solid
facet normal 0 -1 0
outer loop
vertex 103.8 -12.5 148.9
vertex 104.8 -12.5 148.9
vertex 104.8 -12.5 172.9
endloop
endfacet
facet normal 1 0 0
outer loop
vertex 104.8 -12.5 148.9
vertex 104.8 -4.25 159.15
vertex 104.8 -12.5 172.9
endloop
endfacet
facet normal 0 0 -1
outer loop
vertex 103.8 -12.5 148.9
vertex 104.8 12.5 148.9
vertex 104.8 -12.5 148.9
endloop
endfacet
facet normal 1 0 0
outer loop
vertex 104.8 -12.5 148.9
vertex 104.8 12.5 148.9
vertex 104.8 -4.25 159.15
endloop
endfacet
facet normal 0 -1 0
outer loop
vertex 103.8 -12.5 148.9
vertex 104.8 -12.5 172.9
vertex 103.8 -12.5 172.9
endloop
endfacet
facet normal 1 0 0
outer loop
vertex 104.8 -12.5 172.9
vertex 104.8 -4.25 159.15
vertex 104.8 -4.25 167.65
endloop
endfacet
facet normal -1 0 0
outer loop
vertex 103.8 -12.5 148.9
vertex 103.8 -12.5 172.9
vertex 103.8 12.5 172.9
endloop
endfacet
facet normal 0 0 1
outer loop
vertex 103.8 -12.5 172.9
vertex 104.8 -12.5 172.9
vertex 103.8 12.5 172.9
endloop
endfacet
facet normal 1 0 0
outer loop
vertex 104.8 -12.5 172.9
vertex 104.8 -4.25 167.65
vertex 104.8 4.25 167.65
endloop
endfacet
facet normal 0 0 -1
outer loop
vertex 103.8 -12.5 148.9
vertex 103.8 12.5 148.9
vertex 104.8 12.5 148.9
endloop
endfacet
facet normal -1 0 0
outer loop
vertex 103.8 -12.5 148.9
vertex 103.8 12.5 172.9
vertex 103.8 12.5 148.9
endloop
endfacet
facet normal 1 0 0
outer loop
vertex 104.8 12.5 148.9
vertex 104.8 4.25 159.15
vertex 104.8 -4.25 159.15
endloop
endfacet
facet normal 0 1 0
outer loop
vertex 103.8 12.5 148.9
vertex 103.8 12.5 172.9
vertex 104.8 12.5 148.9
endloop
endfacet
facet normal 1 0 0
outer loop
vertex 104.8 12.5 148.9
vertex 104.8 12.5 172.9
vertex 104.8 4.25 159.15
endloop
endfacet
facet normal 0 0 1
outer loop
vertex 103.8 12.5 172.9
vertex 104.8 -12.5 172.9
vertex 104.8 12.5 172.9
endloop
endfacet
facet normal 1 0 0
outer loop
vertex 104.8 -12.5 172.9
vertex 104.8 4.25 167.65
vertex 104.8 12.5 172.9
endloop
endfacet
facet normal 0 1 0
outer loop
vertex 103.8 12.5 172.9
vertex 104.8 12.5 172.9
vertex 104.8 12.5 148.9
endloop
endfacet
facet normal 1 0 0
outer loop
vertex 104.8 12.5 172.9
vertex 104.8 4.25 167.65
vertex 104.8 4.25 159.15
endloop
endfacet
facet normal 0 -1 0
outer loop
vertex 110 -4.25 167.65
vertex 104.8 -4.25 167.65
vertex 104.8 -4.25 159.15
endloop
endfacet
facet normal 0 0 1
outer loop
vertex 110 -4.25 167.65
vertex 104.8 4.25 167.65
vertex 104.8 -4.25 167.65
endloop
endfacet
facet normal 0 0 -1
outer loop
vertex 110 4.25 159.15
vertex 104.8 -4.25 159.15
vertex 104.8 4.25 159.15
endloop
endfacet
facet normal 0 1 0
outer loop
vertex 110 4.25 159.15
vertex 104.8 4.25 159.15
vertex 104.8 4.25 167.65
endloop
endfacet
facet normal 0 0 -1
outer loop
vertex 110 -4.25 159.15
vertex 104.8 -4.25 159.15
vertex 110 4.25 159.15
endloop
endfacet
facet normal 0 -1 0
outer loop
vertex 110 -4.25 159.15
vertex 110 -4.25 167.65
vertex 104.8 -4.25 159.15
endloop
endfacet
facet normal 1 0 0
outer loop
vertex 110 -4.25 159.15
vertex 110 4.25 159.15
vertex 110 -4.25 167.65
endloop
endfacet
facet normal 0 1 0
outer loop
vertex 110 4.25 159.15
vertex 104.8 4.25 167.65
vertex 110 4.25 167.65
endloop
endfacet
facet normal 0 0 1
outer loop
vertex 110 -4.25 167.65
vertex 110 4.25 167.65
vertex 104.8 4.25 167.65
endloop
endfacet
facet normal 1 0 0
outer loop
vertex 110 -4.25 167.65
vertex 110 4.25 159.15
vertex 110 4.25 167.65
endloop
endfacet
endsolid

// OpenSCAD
// file: ../md_vitamins.scad
// Envelopes of the bought electronics, placed where the parts expect them (for fit checks and renders)
SG90_STL = "/Users/hemangvora/OpenDuck/upstream/Open_Duck_Mini/mini_bdx/robots/open_duck_mini_v2/sg90.stl";
module v_sg90_jaw() multmatrix([[1,0,0,JAW_P[0]-5.7],[0,0,-1,-SG_BASE],[0,1,0,JAW_P[1]],[0,0,0,1]]) import(SG90_STL);
module v_radxa() {                         // Radxa Zero 3W 65 x 30 board on 6 mm standoffs + 16 mm component/wire budget
    translate([RADXA_X0, RADXA_Y0, CH_Z1 + 6]) { cube([65, 30, 1.6]); translate([2, 2, 1.6]) cube([61, 26, 16]); translate([0, 0, -2]) cube([65, 30, 2]); }
}
module v_buck() translate([-30, -13.5, CH_Z1 + 1]) cube([46, 27, 12]);            // XY-3606 (HW-688), generous envelope
module v_camera() translate([103.8, -12.5, EYE_C[1] - 14.5]) { cube([1.0, 25, 24]); translate([1.0, 12.5 - 4.25, 14.5 - 4.25]) cube([5.2, 8.5, 8.5]); }  // Pi cam v2 / IMX219 board + lens module
module v_tof() translate([103.8, -6.5, TOF_C[1] - 6.5]) { cube([1.0, 13, 13]); translate([1.0, 6.5 - 3.2, 6.5 - 1.5]) cube([1.75, 6.4, 3.0]); }
module head_vitamins() { v_sg90_jaw(); v_radxa(); v_buck(); v_camera(); v_tof(); }

// ---------------- body electronics ----------------
module v_pack()    translate([DK_X0, -PACK[1] / 2, DK_Z1]) cube(PACK);                       // 3S1P Samsung 30Q pack
module v_bms()     translate([DK_X0 + 5, -31, DK_Z1 + PACK[2] + 0.5]) cube([48, 62, 7]);      // 3S 40 A BMS, 5-FET board
module v_adapter() translate([-44, -21, SHELF[4] + 4]) { cube([33, 42, 1.6]); translate([1, 1, 1.6]) cube([31, 40, 10]); }   // Bus Servo Adapter (A)
module v_switch()  {   // AUTO MT 12 V 20 A toggle, 12 mm hole; body 28 x 16 behind the panel, cover outside
    translate([DK_X0, SWITCH_C[0] - 14, SWITCH_C[1] - 8]) cube([45, 28, 16]);
    translate([BX_R - 25, SWITCH_C[0] - 14, SWITCH_C[1] - 8]) cube([25, 28, 16]);
}
module v_xt30()    translate([DK_X0, XT30_C[0] - 5.1, XT30_C[1] - 2.6]) cube([16, 10.2, 5.2]);
module v_balance() translate([DK_X0, BAL_C[0] - 6.2, BAL_C[1] - 2.9]) cube([8, 12.4, 5.8]);
module v_caps()    for (y = [26, 33]) translate([-40, y, SHELF[4] + 5.3]) rotate([0, 90, 0]) cylinder(d = 10.2, h = 21);  // 2 x 1000 uF 25 V lying on the shelf
module body_vitamins() { v_pack(); v_bms(); v_adapter(); v_switch(); v_xt30(); v_balance(); v_caps(); }
// file: ../md_params.scad
// =====================================================================
//  Microduck-look skin for the Open Duck Mini v2 skeleton
//  Shared parameters and helpers.
//  Frame: Open Duck print/robot frame, mm. +x forward, +y left, +z up.
//  Every part is modelled where it sits on the robot (zero pose).
// =====================================================================

$fn = 72;
EPS = 0.01;

// ---------- fasteners ----------
INSERT_D   = 4.0;   // hole for M3 x 5 brass heat-set insert (Amazon B0DZ8B7FW1)
INSERT_L   = 6.0;   // hole depth for that insert
M3_CLR     = 3.4;   // M3 clearance
M3_HEAD    = 6.5;   // M3 socket-head counterbore
M3_NUT     = 6.4;   // M3 nut across corners (+clearance)
M2_TAP     = 1.8;   // M2 self-tapping pilot (SG90 tab screws, servo adapter)
M25_TAP    = 2.2;   // M2.5 self-tapping pilot (Radxa)
M2_CLR     = 2.4;

// ---------- colours (for previews only) ----------
C_WHITE = [0.95, 0.94, 0.90];
C_BLACK = [0.13, 0.13, 0.14];

// ---------- helpers ----------
function lerp(a, b, t) = a + (b - a) * t;

// Section with vertical sides from zb to zc and a superellipse cap from zc to zt.
// Points are (y, z). n = 2 gives an ellipse, larger n gives a squarer top.
function se_pts(w, zb, zc, zt, n, N = 56) =
    concat(
        [[ w, zb]],
        [for (i = [0:N]) let(t = i * 180 / N, c = cos(t), s = sin(t))
            [w * sign(c) * pow(abs(c), 2 / n), zc + (zt - zc) * pow(abs(s), 2 / n)]],
        [[-w, zb]]
    );

// st = [x, half_width, z_bottom, z_curve_start, z_top, exponent]
module station(st, inset = 0, ext = 0) {
    translate([st[0], 0, 0]) rotate([90, 0, 90])
        linear_extrude(height = EPS, center = true)
            offset(delta = -inset)
                polygon(se_pts(st[1], st[2] - ext, st[3], st[4], st[5]));
}

// piecewise loft through convex stations (hull of neighbours)
module loft(sts, inset = 0, ext = 0) {
    for (i = [0:len(sts) - 2])
        hull() { station(sts[i], inset, ext); station(sts[i + 1], inset, ext); }
}

// station parameters interpolated at any x inside the list
function st_at(sts, x) =
    let(i = max([for (k = [0:len(sts) - 2]) if (sts[k][0] <= x) k]),
        a = sts[i], b = sts[i + 1], t = (x - a[0]) / (b[0] - a[0]))
    [x, lerp(a[1], b[1], t), lerp(a[2], b[2], t), lerp(a[3], b[3], t),
        lerp(a[4], b[4], t), lerp(a[5], b[5], t)];

// heat-set insert pocket: opening at origin, going along -z by default
module insert_hole(depth = INSERT_L, d = INSERT_D) {
    translate([0, 0, -depth]) cylinder(d = d, h = depth + EPS);
    translate([0, 0, -0.6]) cylinder(d1 = d, d2 = d + 0.8, h = 0.6 + EPS);   // lead-in chamfer
}

// M3 clearance with counterbore, axis +z, counterbore at the top
module m3_cb(len_total, cb_depth) {
    translate([0, 0, -EPS]) cylinder(d = M3_CLR, h = len_total + 2 * EPS);
    translate([0, 0, len_total - cb_depth]) cylinder(d = M3_HEAD, h = cb_depth + 1);
}

module rrect(x0, x1, y0, y1, r) {
    translate([x0 + r, y0 + r]) offset(r = r) square([x1 - x0 - 2 * r, y1 - y0 - 2 * r]);
}
// main file
include <../md_params.scad>
include <../md_head.scad>
include <../md_vitamins.scad>
v_camera();
